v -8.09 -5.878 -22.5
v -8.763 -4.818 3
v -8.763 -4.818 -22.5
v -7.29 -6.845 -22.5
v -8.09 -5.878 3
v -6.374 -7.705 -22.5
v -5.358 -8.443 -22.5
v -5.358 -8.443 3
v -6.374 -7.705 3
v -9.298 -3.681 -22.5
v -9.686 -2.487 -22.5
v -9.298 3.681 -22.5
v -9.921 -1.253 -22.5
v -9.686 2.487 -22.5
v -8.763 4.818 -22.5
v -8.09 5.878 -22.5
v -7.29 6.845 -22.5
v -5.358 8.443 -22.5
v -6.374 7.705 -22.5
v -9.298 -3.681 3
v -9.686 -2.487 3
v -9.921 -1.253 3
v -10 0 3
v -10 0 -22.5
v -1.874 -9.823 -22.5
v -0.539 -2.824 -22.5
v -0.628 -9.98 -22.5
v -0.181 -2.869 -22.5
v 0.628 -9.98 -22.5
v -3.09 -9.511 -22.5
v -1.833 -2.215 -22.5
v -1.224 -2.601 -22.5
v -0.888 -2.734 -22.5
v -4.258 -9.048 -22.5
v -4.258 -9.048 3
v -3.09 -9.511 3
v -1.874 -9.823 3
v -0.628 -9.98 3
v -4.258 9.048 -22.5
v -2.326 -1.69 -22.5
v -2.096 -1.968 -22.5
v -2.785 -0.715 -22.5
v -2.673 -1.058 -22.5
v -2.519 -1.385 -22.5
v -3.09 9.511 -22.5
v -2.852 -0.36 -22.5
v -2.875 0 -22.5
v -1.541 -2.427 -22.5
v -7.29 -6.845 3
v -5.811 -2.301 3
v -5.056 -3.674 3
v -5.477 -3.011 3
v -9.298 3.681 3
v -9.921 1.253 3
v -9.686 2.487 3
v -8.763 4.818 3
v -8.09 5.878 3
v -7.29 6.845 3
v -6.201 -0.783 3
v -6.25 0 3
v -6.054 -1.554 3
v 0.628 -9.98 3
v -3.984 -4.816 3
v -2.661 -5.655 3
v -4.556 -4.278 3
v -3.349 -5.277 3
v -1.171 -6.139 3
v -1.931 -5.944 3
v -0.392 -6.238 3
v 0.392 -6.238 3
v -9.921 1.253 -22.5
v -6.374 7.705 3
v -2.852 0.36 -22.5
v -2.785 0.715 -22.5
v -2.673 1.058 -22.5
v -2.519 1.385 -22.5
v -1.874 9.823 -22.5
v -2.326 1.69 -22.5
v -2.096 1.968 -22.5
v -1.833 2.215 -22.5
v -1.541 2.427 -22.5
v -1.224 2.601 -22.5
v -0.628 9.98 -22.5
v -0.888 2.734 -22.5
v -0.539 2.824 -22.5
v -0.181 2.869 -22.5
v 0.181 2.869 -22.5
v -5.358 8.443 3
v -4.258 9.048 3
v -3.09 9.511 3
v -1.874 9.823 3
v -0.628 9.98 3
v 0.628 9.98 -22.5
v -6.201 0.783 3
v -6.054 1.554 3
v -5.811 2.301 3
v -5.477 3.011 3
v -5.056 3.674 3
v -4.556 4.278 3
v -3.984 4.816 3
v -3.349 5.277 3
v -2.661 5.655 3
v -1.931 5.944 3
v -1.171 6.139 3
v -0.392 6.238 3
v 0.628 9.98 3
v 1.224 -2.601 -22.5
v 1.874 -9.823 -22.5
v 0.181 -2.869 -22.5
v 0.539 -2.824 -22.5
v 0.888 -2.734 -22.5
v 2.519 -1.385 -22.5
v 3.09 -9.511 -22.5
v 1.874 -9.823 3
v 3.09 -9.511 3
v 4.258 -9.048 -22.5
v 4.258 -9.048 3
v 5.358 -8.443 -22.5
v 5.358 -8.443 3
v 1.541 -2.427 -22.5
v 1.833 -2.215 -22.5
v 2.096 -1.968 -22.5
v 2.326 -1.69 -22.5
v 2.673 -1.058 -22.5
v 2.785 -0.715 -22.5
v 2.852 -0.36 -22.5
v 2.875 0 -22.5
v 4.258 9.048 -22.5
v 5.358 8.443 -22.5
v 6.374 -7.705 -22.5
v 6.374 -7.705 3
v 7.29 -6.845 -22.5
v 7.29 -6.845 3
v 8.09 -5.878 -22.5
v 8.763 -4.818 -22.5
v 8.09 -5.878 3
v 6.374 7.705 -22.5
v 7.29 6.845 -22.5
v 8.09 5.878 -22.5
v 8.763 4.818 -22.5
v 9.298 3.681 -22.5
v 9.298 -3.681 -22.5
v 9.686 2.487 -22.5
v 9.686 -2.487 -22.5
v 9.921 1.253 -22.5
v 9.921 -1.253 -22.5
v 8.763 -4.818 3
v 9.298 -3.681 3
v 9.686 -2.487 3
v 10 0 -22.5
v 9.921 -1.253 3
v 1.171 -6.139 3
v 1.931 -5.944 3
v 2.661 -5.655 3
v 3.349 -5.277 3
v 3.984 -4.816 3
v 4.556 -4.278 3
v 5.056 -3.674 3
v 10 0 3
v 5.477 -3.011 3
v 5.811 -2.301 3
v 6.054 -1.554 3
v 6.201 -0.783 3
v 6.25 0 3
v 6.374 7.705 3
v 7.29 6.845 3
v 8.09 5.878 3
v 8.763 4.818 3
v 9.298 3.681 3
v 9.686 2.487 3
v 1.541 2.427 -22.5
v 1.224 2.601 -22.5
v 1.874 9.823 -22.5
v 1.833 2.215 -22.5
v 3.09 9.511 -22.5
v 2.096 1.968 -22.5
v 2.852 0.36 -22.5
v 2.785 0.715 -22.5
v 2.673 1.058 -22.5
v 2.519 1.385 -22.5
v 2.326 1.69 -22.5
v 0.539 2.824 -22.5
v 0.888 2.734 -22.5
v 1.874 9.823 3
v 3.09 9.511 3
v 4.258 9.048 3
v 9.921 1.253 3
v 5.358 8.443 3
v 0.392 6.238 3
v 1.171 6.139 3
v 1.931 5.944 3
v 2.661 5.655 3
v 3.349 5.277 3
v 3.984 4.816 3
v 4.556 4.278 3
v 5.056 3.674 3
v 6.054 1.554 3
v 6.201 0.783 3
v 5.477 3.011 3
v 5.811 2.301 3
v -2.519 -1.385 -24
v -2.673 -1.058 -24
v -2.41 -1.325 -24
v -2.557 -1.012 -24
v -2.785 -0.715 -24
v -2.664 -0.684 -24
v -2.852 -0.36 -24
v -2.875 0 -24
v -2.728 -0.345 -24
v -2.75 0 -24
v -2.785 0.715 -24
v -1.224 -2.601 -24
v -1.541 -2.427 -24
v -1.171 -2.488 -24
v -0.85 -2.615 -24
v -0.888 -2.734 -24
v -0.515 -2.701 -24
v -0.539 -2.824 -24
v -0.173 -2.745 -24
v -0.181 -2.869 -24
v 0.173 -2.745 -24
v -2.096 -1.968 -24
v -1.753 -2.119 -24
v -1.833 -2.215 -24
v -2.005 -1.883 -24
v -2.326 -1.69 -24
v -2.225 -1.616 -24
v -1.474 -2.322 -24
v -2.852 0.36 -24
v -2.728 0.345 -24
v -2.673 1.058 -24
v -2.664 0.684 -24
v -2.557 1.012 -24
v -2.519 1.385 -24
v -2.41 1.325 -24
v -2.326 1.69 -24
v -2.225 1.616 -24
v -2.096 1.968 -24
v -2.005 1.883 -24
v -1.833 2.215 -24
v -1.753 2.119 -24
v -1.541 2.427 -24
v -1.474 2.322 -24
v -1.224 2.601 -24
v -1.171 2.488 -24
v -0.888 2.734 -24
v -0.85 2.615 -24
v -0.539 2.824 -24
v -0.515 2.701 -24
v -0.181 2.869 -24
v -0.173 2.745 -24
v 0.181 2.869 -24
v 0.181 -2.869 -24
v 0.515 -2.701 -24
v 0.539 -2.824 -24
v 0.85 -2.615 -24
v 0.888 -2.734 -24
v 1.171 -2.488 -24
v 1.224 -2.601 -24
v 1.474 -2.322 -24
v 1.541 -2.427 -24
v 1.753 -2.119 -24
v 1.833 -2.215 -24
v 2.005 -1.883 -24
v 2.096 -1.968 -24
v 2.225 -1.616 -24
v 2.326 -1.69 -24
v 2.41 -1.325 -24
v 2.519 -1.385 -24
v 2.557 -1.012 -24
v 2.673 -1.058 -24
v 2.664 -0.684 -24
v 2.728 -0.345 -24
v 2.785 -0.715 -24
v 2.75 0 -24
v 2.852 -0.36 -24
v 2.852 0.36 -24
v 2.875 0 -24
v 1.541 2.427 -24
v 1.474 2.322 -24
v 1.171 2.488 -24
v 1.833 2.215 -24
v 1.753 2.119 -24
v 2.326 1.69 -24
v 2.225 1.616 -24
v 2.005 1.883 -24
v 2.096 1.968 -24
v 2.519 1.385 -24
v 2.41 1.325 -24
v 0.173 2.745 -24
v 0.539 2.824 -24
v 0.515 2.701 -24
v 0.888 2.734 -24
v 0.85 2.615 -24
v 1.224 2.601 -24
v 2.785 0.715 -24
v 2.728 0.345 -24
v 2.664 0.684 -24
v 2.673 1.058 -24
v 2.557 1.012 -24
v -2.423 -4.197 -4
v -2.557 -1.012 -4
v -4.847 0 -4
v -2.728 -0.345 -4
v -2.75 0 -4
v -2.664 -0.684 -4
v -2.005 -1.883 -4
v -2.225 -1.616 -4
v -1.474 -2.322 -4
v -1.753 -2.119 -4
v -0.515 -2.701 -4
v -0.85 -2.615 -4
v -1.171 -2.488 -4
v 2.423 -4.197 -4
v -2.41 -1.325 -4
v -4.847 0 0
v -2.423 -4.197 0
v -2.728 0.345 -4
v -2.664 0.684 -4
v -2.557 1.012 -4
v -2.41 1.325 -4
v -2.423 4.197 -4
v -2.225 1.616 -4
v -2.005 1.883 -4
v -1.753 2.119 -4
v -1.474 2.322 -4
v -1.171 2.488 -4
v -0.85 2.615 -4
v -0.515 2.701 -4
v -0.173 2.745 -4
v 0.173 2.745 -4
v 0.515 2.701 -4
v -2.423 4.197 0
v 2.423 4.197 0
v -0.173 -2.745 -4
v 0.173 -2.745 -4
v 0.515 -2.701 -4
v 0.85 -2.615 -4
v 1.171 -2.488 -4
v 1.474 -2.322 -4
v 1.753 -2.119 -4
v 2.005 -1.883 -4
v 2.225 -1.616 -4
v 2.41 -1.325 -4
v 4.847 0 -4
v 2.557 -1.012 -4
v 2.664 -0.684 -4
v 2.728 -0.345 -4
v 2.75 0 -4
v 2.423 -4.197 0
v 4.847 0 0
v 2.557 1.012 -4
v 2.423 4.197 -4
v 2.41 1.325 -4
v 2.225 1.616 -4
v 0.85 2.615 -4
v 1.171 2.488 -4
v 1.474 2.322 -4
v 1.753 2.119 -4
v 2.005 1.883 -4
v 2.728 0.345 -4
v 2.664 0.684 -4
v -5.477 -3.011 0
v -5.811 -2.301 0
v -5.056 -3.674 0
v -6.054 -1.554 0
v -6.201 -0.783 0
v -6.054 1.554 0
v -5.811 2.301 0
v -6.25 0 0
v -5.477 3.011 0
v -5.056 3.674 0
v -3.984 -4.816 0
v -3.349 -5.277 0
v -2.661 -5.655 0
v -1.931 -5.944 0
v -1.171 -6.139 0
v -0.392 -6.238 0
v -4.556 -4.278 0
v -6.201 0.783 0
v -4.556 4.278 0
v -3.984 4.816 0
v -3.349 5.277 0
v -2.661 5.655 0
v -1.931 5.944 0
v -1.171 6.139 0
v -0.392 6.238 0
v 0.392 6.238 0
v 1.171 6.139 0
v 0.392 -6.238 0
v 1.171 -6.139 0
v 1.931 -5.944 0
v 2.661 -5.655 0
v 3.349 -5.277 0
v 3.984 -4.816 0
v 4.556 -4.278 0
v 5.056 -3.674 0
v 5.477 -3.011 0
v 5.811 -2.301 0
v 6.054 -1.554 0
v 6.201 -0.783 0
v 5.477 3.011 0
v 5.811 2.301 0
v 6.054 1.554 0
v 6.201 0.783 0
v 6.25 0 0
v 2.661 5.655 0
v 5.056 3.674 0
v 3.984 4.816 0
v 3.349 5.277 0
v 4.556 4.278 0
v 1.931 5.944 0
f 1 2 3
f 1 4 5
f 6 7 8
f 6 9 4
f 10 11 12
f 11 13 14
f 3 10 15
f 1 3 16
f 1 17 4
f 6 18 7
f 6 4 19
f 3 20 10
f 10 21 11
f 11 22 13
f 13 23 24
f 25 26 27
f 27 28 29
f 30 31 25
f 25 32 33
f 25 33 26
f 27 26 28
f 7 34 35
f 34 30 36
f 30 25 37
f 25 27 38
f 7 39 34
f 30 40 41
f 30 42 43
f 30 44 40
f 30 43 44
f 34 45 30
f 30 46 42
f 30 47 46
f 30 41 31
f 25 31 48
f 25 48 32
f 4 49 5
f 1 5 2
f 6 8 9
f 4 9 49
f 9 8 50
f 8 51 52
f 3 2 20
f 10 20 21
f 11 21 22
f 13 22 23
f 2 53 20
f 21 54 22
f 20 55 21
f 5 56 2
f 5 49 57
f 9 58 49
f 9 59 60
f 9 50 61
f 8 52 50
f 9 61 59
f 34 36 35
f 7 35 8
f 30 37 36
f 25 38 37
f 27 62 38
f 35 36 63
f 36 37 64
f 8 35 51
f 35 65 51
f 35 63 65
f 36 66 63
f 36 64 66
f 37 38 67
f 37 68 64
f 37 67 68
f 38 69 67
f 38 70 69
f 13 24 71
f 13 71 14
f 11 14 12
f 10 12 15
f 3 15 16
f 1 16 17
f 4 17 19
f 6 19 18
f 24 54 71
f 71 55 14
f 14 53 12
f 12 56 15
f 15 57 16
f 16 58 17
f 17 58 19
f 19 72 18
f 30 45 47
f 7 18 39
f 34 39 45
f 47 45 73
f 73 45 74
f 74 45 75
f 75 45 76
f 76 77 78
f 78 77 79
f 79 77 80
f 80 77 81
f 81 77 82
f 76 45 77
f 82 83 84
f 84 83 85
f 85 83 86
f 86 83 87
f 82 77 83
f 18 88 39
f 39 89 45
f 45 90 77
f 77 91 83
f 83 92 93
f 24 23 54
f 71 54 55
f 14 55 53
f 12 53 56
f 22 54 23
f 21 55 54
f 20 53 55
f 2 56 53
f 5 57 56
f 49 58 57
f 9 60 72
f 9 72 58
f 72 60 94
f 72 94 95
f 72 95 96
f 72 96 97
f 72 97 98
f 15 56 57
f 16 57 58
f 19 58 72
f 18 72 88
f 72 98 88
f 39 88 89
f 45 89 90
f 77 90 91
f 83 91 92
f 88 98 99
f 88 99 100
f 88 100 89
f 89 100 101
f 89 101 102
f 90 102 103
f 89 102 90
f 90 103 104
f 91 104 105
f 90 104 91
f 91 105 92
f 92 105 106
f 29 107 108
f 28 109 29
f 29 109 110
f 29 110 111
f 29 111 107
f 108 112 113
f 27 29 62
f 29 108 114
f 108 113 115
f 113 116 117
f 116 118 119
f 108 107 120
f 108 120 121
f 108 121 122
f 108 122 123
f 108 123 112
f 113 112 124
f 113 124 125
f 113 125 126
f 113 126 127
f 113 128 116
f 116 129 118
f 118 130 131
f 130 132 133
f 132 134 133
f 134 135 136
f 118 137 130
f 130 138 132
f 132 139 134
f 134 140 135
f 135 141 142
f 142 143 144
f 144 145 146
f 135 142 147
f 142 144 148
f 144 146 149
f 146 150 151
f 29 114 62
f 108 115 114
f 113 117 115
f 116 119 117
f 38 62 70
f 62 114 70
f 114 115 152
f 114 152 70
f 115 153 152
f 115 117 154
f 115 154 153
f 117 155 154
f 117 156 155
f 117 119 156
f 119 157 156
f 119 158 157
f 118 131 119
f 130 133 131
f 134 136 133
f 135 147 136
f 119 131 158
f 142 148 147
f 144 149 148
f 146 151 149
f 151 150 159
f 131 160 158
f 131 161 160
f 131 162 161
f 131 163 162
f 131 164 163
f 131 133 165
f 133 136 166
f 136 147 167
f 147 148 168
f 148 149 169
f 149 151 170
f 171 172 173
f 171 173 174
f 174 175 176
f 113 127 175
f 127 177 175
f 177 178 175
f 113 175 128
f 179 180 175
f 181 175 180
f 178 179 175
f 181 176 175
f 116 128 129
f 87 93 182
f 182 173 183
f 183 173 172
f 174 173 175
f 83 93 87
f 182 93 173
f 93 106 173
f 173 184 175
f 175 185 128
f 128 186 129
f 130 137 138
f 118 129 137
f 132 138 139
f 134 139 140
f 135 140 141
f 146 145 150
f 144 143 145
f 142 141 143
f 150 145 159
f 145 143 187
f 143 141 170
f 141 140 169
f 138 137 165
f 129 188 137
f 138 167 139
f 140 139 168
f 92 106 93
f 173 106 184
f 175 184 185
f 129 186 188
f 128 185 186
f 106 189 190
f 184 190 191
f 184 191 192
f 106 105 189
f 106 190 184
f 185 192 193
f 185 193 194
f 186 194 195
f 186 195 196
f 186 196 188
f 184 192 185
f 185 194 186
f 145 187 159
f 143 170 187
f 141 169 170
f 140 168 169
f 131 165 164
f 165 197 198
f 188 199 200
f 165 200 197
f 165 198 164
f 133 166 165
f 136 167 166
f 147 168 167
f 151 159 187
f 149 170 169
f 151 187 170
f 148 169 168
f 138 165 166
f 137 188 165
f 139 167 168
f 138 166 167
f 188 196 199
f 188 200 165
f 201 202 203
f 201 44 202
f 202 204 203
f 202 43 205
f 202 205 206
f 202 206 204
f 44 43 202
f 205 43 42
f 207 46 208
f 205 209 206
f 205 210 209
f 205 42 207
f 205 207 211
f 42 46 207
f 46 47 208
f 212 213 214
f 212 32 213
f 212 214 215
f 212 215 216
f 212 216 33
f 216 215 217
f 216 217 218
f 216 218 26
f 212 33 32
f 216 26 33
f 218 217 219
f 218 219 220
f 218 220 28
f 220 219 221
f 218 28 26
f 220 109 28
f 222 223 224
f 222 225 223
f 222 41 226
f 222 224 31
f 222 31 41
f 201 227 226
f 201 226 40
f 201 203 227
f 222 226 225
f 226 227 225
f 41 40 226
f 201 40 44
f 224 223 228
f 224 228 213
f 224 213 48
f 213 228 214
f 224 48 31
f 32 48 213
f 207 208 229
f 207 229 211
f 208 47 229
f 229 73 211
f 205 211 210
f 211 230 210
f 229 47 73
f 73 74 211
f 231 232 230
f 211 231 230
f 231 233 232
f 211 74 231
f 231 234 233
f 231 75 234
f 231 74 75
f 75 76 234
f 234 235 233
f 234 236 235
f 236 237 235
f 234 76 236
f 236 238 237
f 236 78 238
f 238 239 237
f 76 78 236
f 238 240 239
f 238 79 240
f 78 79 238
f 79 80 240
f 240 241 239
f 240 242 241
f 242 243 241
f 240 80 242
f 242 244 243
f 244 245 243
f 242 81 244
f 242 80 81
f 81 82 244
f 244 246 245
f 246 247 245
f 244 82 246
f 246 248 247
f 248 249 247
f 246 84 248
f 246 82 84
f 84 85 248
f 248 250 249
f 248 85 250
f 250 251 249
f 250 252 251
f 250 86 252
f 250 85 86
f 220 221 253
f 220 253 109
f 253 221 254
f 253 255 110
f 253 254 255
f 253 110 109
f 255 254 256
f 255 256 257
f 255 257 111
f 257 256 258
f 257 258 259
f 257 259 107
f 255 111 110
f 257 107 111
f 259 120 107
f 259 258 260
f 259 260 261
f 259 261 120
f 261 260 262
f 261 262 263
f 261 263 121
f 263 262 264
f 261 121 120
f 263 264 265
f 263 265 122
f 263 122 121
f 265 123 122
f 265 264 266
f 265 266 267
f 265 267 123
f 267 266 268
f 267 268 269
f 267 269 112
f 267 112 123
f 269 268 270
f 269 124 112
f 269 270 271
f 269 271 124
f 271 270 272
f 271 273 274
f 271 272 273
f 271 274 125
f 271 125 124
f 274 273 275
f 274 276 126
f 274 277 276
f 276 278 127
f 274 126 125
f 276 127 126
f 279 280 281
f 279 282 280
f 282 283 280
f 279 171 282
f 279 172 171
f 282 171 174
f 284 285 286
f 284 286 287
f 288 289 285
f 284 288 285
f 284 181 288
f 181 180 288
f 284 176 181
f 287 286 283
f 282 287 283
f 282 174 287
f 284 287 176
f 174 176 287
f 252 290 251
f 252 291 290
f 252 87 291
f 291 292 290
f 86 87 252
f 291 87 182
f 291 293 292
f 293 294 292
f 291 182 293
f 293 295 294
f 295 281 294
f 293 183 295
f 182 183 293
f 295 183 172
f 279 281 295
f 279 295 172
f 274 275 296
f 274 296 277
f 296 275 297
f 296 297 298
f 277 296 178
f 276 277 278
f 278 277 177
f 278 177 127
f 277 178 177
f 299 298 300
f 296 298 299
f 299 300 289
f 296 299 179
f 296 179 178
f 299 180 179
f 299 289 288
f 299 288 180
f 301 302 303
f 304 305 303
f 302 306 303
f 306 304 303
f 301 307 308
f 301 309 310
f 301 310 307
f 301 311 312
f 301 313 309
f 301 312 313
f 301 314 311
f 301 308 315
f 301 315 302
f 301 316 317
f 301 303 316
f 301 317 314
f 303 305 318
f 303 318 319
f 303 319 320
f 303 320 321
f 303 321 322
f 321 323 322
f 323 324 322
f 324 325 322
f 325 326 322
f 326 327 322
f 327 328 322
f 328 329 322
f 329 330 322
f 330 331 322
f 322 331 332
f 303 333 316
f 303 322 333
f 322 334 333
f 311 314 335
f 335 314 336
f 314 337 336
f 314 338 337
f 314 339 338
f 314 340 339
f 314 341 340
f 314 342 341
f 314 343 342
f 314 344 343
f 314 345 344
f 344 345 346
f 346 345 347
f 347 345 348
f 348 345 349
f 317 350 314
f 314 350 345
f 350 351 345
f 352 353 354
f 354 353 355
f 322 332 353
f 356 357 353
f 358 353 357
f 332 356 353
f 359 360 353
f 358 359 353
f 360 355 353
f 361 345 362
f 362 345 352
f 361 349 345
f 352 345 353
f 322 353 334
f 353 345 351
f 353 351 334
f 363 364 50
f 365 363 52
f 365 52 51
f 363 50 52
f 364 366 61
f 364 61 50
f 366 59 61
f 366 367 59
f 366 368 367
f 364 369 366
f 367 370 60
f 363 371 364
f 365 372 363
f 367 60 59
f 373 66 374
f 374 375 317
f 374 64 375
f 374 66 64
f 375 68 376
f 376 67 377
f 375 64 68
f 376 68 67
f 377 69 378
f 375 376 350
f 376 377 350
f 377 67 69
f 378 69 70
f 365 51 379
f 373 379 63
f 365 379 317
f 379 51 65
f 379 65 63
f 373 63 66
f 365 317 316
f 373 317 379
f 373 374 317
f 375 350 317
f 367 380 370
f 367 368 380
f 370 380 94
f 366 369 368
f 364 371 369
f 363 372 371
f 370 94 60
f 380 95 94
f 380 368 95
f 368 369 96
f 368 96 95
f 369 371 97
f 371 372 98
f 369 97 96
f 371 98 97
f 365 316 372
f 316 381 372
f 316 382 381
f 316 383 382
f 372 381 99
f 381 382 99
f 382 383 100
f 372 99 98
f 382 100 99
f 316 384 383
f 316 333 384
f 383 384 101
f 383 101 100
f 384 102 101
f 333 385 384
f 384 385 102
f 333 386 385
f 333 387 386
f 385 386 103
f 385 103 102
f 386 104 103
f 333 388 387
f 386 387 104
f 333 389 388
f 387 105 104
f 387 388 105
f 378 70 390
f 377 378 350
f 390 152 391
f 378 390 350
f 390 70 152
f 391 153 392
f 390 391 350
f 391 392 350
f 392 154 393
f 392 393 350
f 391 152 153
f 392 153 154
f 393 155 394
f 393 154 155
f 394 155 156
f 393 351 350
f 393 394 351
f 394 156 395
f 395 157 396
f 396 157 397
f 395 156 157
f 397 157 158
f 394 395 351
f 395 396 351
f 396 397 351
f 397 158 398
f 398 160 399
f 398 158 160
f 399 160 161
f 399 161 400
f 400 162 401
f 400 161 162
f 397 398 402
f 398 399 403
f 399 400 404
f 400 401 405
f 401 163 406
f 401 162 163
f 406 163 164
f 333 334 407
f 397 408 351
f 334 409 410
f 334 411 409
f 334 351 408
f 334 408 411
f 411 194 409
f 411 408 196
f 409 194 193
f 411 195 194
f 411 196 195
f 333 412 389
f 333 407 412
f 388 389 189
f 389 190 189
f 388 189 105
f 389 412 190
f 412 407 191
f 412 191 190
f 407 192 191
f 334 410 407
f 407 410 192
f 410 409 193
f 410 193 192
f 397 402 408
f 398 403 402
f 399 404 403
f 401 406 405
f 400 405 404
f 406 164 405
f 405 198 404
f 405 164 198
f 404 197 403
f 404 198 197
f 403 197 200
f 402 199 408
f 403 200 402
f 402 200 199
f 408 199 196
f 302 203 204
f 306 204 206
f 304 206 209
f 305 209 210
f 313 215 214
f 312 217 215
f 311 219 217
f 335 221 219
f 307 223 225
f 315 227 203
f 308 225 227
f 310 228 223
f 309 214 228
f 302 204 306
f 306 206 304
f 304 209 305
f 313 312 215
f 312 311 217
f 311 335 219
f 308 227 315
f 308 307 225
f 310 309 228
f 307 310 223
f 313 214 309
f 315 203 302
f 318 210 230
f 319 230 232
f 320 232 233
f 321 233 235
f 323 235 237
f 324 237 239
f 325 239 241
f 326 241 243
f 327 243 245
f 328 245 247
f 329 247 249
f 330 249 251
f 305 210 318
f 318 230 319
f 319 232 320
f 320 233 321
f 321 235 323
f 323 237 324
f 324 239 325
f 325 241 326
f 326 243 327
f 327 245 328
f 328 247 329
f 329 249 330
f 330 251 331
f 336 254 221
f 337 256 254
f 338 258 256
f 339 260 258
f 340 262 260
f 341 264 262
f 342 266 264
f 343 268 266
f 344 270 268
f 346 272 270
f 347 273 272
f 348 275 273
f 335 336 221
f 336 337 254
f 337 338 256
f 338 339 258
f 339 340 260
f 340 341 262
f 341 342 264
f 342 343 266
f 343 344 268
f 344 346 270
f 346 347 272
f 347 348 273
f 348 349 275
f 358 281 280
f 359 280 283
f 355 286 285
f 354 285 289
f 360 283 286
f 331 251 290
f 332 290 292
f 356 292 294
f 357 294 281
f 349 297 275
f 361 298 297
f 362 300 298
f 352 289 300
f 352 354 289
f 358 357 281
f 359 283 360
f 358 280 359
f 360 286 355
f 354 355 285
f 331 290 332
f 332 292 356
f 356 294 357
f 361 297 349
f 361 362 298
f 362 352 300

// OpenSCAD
$fn = 50;

difference() {
	union() {
		translate(v = [0, 0, -22.5]) {
			cylinder(h = 25.5, r = 10.0);
		}
		#translate(v = [0, 0, -24.0]) {
			cylinder(h = 24, r = 2.875);
		}
	}
	union() {
		translate(v = [0, 0, 0]) {
			rotate(a = [0, 0, 0]) {
				difference() {
					union() {
						translate(v = [0, 0, -4]) {
							linear_extrude(height = 4) {
								polygon(points = [[4.8468, 0.0], [2.4234000000000004, 4.197451927062417], [-2.423399999999999, 4.197451927062417], [-4.8468, 5.935618106107392e-16], [-2.423400000000002, -4.197451927062416], [2.423399999999997, -4.197451927062419]]);
							}
						}
					}
					union();
				}
			}
		}
		#cylinder(h = 3, r = 6.25);
		#translate(v = [0, 0, -100.0]) {
			cylinder(h = 200, r = 2.75);
		}
	}
}
